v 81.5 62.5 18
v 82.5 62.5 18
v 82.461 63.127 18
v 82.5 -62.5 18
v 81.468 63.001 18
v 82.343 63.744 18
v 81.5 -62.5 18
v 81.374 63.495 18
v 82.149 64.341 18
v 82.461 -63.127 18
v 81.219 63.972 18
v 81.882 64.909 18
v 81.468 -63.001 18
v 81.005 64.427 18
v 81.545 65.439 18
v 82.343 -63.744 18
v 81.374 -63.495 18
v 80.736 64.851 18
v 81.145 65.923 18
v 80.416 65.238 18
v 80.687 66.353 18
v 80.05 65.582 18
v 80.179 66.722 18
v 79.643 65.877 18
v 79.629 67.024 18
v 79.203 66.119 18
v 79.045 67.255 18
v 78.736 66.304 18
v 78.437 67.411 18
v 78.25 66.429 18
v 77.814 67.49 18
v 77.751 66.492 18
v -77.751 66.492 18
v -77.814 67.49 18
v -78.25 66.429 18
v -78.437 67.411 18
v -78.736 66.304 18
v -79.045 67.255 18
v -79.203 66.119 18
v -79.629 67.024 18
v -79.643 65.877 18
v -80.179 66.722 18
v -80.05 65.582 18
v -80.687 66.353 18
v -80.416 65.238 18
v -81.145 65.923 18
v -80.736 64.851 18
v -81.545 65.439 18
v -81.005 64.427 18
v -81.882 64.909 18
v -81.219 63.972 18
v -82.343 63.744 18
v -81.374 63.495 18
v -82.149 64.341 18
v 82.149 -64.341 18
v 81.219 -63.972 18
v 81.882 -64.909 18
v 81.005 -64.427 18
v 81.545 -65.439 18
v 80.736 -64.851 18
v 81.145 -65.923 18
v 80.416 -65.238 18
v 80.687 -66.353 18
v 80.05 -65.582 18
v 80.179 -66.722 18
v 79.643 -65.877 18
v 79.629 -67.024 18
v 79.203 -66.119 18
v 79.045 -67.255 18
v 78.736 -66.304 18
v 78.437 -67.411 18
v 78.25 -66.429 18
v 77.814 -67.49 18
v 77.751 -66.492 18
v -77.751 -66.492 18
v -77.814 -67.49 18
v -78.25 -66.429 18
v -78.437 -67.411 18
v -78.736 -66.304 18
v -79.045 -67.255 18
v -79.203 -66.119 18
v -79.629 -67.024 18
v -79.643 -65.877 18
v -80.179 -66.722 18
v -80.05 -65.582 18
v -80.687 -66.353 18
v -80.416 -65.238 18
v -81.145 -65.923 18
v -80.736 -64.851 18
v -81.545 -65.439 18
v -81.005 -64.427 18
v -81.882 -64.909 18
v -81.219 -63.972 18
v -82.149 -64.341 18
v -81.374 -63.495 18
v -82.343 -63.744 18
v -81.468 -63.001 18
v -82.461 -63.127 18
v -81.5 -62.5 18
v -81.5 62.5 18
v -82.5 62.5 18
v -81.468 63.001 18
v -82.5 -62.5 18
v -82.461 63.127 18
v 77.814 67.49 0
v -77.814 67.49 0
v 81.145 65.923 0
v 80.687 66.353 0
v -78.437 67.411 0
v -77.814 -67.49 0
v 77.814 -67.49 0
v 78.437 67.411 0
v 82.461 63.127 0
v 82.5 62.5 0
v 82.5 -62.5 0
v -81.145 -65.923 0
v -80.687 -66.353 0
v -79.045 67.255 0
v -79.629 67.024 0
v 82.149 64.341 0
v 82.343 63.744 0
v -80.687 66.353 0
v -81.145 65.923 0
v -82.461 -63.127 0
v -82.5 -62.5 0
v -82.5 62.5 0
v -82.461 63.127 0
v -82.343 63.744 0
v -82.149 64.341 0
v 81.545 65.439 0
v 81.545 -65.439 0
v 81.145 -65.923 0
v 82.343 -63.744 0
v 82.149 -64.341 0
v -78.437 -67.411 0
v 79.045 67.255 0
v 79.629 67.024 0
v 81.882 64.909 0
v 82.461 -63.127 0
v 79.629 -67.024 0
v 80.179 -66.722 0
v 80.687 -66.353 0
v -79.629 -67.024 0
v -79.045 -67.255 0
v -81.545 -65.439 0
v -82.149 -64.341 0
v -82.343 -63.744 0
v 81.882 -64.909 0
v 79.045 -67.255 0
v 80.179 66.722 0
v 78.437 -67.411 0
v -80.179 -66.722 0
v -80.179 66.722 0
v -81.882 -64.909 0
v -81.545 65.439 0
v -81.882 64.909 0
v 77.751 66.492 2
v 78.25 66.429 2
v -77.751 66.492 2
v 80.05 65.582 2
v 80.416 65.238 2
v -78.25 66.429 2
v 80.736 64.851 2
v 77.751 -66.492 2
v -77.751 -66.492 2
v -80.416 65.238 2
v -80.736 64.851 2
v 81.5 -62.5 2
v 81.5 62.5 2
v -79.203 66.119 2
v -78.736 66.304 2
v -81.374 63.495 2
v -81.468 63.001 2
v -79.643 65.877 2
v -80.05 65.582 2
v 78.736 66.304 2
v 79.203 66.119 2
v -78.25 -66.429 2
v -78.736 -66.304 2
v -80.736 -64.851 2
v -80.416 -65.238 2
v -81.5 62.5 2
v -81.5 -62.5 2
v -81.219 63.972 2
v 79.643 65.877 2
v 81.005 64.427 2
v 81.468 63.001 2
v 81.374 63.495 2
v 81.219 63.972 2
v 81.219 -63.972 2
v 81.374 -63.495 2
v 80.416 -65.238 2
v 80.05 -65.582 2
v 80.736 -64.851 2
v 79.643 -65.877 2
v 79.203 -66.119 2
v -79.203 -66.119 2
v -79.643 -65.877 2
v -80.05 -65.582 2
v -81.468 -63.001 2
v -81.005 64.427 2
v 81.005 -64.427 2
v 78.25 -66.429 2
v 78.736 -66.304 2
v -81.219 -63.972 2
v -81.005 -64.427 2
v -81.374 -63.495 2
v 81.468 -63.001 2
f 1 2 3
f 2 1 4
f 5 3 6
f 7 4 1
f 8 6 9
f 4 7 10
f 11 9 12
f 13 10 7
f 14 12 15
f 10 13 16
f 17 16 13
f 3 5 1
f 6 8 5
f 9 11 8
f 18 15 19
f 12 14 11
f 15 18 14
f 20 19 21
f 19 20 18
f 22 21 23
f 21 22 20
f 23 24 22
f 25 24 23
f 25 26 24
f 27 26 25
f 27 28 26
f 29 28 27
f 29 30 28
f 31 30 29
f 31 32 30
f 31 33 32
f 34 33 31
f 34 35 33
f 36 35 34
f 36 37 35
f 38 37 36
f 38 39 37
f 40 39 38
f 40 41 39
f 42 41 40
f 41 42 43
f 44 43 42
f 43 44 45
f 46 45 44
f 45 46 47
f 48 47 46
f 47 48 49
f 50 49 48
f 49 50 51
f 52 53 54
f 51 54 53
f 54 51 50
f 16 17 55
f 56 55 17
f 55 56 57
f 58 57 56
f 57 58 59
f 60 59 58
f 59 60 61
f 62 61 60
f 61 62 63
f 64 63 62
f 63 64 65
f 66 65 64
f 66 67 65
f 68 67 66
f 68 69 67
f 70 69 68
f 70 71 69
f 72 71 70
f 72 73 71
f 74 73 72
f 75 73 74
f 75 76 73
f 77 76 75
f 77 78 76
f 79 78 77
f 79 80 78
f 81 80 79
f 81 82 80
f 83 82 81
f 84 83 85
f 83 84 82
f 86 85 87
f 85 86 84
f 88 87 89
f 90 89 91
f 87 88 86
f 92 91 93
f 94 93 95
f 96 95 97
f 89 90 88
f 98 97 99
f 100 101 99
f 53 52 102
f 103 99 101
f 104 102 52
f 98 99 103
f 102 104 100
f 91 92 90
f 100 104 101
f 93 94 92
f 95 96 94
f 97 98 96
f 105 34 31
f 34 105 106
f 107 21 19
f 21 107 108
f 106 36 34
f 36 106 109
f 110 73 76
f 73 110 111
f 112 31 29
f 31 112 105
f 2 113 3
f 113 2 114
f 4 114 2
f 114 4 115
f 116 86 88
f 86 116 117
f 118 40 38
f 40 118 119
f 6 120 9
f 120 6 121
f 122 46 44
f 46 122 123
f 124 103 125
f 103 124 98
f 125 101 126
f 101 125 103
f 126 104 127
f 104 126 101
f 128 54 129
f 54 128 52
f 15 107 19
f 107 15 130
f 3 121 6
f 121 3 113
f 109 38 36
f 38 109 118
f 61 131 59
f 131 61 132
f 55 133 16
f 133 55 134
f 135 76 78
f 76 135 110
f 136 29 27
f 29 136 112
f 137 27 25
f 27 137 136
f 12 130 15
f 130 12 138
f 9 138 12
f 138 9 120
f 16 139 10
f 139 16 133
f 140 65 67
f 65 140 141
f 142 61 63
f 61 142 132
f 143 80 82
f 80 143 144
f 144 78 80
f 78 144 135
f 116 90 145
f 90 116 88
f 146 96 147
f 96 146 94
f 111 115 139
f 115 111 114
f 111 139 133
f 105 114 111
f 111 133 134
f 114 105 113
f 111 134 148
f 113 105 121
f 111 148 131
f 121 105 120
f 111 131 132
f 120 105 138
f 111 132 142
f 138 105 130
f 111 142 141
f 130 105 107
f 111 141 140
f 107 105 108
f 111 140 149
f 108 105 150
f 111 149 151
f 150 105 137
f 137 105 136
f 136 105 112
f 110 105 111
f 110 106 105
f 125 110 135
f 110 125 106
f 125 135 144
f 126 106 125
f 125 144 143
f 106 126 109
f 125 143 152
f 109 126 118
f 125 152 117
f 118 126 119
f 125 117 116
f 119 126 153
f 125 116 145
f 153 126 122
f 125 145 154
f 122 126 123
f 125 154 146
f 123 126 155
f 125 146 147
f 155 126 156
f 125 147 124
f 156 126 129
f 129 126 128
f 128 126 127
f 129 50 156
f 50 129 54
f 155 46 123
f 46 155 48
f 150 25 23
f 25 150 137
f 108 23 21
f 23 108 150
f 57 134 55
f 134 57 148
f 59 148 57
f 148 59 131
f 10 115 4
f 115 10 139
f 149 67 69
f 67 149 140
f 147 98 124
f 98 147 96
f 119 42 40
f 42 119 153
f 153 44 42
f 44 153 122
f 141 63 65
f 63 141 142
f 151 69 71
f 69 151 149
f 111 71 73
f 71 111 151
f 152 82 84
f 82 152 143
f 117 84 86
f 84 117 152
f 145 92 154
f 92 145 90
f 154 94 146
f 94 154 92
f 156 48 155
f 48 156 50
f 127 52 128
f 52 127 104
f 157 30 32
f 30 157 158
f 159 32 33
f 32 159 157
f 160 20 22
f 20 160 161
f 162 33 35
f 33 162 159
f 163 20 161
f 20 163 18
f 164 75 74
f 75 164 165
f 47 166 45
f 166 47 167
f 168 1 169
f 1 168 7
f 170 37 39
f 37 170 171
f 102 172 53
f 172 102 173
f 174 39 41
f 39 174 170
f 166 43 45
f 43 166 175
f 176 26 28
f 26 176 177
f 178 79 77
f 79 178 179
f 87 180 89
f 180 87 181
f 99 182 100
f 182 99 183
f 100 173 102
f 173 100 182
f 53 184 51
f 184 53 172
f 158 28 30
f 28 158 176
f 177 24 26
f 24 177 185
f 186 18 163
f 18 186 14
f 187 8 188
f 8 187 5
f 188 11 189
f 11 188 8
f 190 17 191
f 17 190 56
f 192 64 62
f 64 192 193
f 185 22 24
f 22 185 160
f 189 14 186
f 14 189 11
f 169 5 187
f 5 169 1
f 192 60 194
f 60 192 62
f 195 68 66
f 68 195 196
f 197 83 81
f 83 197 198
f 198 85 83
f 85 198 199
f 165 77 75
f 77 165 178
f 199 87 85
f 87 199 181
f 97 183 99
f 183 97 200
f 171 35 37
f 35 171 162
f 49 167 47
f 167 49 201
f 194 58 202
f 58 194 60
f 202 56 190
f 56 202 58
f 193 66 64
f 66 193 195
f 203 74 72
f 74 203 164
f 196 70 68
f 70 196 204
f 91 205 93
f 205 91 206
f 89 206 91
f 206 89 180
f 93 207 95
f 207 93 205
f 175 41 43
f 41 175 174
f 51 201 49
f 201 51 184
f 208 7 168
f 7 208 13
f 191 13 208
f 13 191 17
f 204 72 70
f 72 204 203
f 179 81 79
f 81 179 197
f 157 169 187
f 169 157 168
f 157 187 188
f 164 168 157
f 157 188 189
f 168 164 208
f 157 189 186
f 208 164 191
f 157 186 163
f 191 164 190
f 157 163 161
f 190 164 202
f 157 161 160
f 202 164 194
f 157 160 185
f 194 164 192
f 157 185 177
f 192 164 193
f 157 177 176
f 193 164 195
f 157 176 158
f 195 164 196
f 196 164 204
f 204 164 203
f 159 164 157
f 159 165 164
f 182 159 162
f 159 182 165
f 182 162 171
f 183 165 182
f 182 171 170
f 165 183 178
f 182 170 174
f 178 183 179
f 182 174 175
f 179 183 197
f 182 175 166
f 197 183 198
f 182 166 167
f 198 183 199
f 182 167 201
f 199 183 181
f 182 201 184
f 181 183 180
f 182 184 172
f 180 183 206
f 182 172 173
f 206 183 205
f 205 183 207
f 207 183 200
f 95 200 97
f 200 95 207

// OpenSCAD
$fn = 50;


difference() {
	union() {
		hull() {
			translate(v = [-77.5000000000, 62.5000000000, 0]) {
				cylinder(h = 18, r = 5);
			}
			translate(v = [77.5000000000, 62.5000000000, 0]) {
				cylinder(h = 18, r = 5);
			}
			translate(v = [-77.5000000000, -62.5000000000, 0]) {
				cylinder(h = 18, r = 5);
			}
			translate(v = [77.5000000000, -62.5000000000, 0]) {
				cylinder(h = 18, r = 5);
			}
		}
	}
	union() {
		translate(v = [0, 0, 2]) {
			hull() {
				translate(v = [-77.5000000000, 62.5000000000, 0]) {
					cylinder(h = 16, r = 4);
				}
				translate(v = [77.5000000000, 62.5000000000, 0]) {
					cylinder(h = 16, r = 4);
				}
				translate(v = [-77.5000000000, -62.5000000000, 0]) {
					cylinder(h = 16, r = 4);
				}
				translate(v = [77.5000000000, -62.5000000000, 0]) {
					cylinder(h = 16, r = 4);
				}
			}
		}
	}
}
